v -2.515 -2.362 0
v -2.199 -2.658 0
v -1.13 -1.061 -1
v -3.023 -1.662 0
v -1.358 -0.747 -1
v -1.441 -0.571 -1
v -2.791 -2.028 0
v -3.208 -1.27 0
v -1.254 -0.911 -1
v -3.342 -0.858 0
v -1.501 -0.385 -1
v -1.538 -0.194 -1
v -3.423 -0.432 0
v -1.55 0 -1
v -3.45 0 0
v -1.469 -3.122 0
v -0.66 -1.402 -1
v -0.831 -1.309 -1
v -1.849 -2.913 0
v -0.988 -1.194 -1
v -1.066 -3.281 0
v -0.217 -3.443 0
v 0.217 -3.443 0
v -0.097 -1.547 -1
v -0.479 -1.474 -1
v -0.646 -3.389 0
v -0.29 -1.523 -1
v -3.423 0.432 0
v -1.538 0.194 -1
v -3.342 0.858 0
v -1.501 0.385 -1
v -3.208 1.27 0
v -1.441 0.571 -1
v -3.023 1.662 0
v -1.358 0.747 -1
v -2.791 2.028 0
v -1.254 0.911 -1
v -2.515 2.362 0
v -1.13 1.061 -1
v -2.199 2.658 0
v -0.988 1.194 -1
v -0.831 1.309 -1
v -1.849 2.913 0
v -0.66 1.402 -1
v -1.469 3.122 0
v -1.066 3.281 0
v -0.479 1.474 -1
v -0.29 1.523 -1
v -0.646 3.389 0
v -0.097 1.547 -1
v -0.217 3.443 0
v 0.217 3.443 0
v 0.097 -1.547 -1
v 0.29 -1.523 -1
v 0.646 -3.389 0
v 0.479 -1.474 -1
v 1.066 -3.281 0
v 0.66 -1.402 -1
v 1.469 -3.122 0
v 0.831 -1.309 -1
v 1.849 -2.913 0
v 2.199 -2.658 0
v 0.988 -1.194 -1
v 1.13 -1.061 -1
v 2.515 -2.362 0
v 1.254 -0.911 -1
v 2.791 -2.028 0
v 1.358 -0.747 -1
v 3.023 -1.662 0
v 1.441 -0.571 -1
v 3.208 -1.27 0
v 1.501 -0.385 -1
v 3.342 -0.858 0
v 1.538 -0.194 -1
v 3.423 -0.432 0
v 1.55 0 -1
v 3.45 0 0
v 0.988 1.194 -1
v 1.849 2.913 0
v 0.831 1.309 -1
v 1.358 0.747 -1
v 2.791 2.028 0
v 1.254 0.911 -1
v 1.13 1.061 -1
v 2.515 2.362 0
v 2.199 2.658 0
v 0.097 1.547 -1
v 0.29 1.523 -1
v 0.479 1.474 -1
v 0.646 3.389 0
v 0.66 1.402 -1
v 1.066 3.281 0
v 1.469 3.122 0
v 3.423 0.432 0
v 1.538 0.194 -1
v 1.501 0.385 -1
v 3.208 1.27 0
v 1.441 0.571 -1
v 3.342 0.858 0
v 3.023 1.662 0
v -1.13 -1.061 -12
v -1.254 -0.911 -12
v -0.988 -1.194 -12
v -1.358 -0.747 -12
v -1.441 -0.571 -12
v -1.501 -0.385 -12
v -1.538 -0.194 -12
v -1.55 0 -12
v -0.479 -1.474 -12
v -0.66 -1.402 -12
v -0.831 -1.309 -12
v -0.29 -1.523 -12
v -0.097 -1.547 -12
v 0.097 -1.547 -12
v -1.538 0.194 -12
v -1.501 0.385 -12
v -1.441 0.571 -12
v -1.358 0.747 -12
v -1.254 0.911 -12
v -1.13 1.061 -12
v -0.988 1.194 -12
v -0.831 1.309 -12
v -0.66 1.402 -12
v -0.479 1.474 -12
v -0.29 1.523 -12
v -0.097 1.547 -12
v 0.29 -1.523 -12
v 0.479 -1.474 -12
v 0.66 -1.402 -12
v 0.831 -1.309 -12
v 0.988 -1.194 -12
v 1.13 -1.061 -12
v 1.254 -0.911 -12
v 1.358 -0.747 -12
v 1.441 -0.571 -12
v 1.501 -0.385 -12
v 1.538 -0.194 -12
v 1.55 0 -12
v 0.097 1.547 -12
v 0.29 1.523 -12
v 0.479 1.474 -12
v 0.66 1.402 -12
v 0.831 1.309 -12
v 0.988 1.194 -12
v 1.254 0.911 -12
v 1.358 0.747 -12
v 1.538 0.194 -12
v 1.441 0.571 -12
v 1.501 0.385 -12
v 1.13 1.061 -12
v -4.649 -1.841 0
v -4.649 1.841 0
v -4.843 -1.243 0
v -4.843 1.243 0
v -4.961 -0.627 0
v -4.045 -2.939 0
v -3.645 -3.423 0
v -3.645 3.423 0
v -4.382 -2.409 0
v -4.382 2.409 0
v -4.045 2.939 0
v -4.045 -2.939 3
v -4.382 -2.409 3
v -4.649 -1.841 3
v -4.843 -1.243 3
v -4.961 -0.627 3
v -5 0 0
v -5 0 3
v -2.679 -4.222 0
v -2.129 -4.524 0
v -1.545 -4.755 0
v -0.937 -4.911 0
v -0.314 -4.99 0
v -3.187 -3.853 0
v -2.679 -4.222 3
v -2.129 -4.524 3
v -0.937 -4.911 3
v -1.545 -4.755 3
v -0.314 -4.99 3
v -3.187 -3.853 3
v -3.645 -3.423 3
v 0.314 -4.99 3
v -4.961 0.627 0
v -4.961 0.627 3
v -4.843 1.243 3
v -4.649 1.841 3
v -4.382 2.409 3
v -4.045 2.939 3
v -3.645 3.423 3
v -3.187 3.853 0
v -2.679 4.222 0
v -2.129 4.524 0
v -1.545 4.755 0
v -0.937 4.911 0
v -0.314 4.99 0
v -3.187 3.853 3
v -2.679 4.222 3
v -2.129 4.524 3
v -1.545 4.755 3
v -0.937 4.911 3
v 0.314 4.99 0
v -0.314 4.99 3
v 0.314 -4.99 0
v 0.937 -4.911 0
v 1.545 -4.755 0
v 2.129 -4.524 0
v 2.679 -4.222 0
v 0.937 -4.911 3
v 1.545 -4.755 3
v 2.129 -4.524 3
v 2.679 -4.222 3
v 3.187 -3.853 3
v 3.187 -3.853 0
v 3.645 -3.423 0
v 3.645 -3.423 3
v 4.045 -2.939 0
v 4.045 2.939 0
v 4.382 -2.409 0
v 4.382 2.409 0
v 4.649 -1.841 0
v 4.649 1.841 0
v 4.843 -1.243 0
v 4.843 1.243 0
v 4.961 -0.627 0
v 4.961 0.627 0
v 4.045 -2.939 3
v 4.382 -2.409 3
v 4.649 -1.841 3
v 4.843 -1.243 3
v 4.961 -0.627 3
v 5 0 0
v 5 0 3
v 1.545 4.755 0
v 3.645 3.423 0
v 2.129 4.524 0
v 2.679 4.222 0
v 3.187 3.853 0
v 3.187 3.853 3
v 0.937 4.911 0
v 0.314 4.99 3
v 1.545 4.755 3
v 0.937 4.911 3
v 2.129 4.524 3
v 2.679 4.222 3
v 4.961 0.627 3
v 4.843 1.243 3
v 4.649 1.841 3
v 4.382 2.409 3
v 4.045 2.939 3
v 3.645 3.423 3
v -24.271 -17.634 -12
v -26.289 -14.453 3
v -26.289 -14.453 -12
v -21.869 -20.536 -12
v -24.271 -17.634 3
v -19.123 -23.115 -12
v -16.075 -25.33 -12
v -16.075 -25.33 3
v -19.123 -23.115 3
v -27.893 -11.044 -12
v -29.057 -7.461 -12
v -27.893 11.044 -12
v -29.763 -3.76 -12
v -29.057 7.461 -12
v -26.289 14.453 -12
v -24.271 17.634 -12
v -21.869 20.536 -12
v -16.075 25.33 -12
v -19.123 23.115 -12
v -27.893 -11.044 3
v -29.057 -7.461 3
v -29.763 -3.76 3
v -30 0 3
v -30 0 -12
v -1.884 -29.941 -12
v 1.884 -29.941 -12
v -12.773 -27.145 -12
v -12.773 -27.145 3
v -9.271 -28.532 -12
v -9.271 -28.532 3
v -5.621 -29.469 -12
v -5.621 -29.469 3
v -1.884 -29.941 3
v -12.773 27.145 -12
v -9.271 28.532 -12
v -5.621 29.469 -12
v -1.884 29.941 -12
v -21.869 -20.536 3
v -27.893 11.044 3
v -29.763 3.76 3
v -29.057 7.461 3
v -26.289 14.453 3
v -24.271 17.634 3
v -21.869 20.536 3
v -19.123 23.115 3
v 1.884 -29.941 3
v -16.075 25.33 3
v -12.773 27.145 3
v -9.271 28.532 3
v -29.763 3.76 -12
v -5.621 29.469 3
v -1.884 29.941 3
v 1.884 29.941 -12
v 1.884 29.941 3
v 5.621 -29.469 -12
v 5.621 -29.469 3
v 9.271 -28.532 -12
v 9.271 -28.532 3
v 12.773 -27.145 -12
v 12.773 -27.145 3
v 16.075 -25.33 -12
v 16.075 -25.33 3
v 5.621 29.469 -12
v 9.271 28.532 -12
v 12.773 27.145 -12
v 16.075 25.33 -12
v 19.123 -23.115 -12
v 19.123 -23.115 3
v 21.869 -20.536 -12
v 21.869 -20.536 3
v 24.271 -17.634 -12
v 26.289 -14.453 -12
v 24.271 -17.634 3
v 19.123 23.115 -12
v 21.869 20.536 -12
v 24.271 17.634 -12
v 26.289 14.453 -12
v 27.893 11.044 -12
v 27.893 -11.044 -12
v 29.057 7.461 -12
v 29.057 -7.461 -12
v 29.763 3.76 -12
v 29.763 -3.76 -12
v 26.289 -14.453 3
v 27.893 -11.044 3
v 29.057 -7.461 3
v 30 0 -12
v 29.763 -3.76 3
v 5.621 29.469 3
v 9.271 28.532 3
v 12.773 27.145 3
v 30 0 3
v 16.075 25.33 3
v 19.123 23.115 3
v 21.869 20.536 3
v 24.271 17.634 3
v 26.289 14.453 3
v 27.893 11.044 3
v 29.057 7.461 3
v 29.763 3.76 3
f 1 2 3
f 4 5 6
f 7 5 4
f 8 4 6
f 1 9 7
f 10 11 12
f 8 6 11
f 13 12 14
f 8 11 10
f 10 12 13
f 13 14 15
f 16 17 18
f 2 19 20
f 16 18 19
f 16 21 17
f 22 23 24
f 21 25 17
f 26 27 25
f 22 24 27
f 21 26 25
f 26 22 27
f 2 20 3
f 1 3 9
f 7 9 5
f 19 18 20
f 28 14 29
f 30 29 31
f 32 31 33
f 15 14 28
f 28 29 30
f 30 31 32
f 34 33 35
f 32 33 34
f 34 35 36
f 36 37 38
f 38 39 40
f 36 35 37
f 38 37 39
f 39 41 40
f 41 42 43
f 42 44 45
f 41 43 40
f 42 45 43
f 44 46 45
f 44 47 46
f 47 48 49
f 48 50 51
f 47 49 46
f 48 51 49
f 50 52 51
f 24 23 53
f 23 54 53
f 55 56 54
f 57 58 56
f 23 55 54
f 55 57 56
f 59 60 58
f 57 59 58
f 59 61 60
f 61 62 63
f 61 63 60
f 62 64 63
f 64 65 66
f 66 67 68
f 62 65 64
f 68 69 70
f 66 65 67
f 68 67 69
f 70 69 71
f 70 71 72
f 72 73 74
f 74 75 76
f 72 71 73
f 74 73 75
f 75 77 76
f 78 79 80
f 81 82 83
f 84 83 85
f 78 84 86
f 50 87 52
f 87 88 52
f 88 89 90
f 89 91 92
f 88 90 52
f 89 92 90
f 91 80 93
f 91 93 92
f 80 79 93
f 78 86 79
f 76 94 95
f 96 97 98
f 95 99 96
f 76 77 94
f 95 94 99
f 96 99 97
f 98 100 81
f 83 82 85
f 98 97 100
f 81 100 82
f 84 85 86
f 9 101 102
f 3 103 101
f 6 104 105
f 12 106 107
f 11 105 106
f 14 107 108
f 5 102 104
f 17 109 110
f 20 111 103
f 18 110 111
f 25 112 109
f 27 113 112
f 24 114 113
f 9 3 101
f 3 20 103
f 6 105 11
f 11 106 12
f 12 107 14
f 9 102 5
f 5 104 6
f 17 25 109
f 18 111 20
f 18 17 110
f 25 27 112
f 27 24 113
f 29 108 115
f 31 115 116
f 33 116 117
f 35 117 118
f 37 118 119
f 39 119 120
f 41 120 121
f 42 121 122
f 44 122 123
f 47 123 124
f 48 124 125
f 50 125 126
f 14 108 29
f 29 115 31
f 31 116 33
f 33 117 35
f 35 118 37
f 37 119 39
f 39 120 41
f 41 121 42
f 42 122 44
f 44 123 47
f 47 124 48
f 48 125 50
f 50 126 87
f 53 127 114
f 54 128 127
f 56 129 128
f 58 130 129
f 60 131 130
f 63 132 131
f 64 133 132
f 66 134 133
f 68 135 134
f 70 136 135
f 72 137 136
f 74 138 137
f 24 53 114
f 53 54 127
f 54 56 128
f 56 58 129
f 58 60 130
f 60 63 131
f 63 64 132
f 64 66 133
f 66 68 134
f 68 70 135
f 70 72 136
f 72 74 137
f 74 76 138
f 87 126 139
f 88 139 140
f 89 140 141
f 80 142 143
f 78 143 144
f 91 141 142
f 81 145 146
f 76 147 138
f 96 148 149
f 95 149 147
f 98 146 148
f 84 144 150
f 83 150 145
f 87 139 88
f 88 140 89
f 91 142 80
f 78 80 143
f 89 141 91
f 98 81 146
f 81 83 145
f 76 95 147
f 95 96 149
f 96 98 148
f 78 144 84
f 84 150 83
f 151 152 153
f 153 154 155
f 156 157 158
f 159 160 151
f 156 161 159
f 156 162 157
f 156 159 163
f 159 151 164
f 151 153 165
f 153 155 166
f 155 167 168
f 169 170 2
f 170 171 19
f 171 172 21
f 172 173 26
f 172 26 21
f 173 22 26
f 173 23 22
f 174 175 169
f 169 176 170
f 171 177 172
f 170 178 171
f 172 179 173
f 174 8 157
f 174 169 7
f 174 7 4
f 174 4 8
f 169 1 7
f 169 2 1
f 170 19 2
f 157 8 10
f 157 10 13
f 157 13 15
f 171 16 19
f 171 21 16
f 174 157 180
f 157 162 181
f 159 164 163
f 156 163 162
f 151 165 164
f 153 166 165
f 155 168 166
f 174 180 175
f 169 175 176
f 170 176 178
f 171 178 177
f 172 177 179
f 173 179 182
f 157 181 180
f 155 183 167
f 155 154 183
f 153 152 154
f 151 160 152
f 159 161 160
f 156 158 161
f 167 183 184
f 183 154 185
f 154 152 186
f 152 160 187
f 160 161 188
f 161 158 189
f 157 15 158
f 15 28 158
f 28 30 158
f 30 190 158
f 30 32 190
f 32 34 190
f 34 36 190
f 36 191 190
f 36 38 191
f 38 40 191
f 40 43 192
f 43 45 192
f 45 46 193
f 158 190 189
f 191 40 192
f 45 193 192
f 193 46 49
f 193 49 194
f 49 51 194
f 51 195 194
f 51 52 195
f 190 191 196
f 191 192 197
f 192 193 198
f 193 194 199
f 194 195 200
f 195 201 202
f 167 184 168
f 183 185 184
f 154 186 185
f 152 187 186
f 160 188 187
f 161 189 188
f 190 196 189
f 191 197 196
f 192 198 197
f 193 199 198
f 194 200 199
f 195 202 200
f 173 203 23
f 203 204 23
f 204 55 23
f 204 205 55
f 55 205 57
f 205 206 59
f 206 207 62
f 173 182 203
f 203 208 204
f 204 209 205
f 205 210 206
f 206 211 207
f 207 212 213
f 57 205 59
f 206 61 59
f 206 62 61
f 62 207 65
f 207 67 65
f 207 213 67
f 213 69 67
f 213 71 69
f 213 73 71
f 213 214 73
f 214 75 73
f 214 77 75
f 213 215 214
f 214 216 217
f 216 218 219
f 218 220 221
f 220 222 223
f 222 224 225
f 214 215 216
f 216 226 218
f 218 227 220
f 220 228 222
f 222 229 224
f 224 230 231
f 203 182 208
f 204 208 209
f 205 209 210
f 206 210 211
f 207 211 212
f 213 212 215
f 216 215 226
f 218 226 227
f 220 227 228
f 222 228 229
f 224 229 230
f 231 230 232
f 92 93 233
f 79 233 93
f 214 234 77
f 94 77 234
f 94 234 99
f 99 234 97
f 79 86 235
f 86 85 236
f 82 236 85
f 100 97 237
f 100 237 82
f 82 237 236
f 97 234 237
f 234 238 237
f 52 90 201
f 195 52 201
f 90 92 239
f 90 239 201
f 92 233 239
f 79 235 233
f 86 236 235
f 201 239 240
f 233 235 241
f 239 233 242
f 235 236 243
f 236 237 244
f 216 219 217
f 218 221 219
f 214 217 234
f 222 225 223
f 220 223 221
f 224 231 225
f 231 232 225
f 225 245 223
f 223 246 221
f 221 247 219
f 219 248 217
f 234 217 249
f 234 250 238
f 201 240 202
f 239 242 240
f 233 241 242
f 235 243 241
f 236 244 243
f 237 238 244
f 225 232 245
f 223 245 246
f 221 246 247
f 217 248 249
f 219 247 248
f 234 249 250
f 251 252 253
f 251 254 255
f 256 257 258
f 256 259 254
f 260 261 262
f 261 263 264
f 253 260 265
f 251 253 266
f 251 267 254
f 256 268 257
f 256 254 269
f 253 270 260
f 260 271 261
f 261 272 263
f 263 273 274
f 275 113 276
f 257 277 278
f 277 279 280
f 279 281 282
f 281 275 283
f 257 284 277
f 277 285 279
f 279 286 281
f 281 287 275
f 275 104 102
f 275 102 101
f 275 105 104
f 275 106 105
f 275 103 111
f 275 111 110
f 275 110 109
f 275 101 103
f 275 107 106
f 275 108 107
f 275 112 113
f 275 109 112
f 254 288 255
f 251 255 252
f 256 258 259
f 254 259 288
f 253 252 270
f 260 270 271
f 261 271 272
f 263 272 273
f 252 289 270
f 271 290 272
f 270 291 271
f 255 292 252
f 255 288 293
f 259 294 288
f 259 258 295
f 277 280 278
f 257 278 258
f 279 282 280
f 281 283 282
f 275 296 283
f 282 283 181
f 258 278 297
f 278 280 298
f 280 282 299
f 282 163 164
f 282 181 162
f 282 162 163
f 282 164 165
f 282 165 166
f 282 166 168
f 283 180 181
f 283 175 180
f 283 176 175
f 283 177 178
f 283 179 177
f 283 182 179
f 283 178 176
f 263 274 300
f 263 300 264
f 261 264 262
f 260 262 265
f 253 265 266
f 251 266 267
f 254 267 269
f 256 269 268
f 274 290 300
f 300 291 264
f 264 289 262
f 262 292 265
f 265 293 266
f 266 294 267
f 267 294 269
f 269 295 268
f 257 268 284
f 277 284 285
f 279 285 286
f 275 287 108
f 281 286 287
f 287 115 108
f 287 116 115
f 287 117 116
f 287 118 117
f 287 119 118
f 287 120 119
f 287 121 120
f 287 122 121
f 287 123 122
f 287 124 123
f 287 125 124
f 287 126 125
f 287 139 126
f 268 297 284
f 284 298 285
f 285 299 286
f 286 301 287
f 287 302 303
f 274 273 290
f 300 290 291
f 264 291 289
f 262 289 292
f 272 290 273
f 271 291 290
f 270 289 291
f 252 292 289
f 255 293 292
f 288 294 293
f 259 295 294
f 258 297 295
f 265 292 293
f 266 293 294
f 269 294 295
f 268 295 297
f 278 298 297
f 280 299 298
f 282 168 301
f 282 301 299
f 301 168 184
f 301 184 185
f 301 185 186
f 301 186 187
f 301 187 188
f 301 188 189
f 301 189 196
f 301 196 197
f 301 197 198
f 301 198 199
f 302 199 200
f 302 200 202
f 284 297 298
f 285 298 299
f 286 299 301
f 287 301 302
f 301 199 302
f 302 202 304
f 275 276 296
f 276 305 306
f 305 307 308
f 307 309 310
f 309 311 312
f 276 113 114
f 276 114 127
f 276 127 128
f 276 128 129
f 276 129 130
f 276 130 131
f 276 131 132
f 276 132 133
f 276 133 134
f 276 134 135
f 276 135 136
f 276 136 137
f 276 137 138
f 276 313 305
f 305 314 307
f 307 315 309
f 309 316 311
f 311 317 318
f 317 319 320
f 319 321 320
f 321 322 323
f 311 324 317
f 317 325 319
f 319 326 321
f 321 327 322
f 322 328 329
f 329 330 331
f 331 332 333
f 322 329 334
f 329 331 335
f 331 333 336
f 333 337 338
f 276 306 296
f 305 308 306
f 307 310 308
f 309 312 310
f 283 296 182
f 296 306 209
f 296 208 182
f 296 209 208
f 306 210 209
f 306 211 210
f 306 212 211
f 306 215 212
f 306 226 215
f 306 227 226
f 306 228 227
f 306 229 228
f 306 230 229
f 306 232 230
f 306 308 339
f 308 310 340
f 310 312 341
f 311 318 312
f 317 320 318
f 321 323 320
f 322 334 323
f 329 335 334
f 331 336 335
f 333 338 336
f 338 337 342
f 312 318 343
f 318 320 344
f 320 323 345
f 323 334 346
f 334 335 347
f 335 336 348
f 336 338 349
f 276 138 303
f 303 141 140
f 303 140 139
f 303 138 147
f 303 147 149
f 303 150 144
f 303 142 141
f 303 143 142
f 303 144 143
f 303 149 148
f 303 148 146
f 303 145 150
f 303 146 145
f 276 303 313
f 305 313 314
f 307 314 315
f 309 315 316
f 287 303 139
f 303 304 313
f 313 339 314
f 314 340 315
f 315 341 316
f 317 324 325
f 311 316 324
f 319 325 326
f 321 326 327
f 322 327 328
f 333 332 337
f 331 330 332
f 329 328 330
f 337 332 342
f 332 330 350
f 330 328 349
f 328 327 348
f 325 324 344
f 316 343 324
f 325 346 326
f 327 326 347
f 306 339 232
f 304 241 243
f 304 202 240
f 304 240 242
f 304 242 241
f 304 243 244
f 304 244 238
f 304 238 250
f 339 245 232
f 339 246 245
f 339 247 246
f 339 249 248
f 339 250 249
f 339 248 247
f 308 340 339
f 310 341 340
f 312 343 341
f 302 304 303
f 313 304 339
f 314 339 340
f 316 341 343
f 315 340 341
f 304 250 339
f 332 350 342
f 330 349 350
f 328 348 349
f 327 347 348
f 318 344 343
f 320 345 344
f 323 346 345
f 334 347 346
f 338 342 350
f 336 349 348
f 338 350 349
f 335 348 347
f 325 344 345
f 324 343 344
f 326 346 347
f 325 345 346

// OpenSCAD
$fn = 50;


difference() {
	union() {
		translate(v = [0, 0, -12.0000000000]) {
			cylinder(h = 15, r = 30.0000000000);
		}
	}
	union() {
		translate(v = [0, 0, 0]) {
			rotate(a = [0, 0, 0]) {
				difference() {
					union() {
						translate(v = [0, 0, -15.0000000000]) {
							cylinder(h = 15, r = 1.2500000000);
						}
						translate(v = [0, 0, -1.0000000000]) {
							cylinder(h = 1.0000000000, r1 = 1.5500000000, r2 = 3.4500000000);
						}
						translate(v = [0, 0, -15.0000000000]) {
							cylinder(h = 15, r = 1.5500000000);
						}
						translate(v = [0, 0, -15.0000000000]) {
							cylinder(h = 15, r = 1.2500000000);
						}
					}
					union();
				}
			}
		}
		#cylinder(h = 3, r = 5.0000000000);
	}
}
